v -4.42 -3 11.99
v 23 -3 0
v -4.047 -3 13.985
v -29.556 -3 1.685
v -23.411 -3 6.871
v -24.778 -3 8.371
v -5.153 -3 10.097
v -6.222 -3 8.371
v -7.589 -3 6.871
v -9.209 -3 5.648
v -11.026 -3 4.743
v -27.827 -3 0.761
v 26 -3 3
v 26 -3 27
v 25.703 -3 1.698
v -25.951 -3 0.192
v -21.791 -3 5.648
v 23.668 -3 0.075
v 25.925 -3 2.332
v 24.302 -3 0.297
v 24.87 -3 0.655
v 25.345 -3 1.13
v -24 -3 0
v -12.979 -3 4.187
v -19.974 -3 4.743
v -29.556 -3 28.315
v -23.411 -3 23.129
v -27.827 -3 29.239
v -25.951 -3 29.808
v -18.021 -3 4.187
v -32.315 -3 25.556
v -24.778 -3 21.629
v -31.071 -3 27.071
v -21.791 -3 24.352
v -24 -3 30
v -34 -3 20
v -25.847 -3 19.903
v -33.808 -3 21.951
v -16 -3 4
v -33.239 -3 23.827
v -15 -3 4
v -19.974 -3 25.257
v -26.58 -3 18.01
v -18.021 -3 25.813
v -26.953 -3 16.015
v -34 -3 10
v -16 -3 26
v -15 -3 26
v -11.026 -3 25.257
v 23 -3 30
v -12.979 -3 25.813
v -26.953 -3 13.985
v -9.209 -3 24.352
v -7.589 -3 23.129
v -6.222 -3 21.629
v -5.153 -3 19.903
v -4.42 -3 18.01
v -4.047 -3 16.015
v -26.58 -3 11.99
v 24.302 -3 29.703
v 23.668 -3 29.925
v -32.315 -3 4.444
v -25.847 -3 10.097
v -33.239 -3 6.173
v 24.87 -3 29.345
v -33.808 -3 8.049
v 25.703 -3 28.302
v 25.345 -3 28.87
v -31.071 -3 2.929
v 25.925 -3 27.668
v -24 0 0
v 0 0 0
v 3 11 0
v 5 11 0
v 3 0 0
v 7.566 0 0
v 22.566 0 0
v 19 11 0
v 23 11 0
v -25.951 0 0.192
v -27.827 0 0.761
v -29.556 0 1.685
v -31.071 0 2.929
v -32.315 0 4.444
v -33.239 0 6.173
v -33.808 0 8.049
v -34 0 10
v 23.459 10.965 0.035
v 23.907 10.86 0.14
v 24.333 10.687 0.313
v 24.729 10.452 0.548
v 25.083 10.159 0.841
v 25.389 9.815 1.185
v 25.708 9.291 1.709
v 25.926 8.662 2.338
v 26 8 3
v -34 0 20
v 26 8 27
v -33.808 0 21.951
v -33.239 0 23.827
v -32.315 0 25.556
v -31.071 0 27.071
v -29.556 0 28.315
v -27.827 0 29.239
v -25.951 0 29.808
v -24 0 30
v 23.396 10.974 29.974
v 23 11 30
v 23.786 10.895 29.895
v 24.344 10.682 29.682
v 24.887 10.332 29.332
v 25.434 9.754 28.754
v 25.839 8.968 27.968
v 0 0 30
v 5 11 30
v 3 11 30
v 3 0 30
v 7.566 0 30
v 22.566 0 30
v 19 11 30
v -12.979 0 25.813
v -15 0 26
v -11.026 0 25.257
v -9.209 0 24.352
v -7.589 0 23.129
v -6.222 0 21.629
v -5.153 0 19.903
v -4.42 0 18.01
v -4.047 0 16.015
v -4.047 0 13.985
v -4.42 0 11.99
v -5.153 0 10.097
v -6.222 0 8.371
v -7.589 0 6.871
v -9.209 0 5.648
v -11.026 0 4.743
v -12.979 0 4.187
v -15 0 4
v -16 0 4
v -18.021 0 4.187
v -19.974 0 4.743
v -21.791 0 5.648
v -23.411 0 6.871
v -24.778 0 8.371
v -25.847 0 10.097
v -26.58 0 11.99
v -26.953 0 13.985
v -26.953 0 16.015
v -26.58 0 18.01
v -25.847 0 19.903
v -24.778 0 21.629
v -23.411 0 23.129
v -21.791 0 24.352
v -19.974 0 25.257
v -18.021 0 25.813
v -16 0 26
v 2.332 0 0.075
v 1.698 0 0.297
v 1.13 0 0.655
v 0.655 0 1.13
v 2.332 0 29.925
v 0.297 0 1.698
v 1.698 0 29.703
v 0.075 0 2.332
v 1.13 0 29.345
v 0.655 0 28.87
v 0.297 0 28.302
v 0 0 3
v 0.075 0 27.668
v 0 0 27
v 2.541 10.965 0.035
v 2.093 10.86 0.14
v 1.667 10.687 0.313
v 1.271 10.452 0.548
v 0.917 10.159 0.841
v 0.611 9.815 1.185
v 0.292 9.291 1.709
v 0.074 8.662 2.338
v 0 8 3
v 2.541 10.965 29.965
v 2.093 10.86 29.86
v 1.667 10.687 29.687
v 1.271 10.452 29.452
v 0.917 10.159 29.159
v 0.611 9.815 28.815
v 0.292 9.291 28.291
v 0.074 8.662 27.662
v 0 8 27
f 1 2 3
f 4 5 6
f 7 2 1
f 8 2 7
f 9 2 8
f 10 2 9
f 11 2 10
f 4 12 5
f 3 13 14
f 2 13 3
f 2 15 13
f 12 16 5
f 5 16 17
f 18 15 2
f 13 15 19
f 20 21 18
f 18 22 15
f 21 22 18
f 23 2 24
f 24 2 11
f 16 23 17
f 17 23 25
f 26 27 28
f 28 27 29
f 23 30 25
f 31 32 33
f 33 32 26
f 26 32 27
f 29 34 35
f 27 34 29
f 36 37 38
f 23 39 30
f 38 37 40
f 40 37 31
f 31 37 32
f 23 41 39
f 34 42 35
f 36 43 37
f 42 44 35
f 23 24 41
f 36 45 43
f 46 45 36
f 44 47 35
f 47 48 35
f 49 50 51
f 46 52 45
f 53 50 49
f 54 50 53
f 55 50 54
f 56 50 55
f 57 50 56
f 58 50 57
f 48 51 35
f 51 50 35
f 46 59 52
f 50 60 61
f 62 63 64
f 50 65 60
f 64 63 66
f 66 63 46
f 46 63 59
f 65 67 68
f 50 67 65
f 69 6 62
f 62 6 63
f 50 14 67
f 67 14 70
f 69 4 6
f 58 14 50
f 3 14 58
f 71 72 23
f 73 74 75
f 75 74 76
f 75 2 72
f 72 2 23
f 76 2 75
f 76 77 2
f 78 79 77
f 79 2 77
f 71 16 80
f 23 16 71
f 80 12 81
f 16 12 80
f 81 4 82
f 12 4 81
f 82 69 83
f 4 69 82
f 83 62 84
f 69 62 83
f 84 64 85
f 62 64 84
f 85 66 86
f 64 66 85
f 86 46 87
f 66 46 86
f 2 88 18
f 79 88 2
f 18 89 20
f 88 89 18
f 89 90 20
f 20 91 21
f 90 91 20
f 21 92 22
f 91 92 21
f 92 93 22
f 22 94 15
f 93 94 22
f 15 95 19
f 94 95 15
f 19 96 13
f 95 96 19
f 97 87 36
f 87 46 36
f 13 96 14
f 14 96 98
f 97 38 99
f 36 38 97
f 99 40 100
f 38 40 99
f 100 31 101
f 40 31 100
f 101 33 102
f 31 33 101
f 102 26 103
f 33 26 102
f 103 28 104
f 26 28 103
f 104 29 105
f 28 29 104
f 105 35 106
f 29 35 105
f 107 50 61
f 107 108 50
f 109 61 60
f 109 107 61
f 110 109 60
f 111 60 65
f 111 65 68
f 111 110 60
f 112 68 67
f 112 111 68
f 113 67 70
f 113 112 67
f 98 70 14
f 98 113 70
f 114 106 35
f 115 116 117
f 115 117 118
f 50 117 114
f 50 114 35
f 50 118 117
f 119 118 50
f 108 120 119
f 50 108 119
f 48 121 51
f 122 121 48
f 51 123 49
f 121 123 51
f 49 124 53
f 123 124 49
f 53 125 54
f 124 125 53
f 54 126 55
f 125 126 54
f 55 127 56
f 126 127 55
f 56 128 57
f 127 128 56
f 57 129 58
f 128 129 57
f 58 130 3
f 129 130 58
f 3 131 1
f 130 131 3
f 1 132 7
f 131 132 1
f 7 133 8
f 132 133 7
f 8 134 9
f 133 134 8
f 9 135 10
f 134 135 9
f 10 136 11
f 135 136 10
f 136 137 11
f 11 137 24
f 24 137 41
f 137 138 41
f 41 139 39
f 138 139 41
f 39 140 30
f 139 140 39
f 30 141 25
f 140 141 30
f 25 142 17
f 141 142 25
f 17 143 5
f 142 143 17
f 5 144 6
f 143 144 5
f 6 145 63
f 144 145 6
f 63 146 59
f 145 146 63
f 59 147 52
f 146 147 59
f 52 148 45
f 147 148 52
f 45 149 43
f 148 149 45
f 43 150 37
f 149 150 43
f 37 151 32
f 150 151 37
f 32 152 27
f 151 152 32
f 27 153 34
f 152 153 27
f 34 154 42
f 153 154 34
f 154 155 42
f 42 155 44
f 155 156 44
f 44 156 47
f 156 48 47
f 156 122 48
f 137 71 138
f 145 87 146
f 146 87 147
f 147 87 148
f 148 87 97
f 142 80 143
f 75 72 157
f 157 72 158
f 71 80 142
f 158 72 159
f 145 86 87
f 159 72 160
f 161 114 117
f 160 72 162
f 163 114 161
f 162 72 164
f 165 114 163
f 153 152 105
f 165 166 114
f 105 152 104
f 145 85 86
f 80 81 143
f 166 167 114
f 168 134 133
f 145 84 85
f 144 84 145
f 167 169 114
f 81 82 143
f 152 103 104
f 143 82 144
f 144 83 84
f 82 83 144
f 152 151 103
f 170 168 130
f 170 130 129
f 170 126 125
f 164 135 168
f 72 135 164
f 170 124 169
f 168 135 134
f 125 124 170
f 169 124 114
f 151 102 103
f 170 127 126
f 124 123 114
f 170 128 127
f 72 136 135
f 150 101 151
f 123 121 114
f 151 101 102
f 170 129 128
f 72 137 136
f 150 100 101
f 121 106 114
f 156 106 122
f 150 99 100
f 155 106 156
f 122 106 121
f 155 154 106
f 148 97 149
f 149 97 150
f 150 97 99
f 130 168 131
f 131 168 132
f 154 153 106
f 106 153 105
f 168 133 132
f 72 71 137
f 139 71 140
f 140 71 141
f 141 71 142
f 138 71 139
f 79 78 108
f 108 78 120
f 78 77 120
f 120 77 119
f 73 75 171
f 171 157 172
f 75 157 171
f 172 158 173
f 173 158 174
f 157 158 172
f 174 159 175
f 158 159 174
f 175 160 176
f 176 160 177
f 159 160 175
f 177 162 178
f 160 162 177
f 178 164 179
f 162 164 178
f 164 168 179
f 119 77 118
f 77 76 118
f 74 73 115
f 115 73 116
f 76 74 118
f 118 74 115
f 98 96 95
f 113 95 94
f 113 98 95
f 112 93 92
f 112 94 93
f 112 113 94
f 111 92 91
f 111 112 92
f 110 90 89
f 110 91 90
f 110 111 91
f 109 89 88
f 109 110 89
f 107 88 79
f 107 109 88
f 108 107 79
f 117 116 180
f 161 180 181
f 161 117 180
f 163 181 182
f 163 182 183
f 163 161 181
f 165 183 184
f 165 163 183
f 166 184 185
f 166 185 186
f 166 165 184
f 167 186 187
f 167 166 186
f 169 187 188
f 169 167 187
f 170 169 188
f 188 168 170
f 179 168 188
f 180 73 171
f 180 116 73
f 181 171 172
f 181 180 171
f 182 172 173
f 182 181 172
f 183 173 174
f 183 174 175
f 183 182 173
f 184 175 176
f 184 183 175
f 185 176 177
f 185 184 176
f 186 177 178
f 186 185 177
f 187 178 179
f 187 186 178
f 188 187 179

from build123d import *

# Parameters (mm, degrees)
PAD_DEPTH    = 30
POCKET_DEPTH = 5
FILLET_R     = 3
FILLET001_R  = 10


with BuildPart() as part:
    # Sketch → Pad (new body)
    with BuildSketch(Plane.XY):
        Polygon((-34, -3), (26, -3), (26, 11), (19, 11), (22.565685, 0), (7.565685, 0), (5, 11), (0, 11), (0, 0), (-34, 0), align=None)
    extrude(amount=PAD_DEPTH)

    # Sketch001 → Pocket (cut)
    with BuildSketch(Plane(origin=(0, 0, 0), x_dir=(-1, 0, 0), z_dir=(0, 1, 0))):
        with BuildLine():
            ThreePointArc((15, 26), (4, 15), (15, 4))
            Line((15, 4), (16, 4))
            ThreePointArc((16, 4), (27, 15), (16, 26))
            Line((15, 26), (16, 26))
        make_face()
    extrude(amount=-POCKET_DEPTH, mode=Mode.SUBTRACT)

    # Fillet
    fillet_edges = [part.edges().sort_by_distance(p)[0] for p in [
        (0, 11, 15),
        (0, 5.5, 30),
        (0, 5.5, 0),
        (26, 4, 0),
        (26, 11, 15),
        (26, 4, 30),
    ]]
    fillet(fillet_edges, radius=FILLET_R)

    # Fillet001
    fillet001_edges = [part.edges().sort_by_distance(p)[0] for p in [
        (-34, -1.5, 0),
        (-34, -1.5, 30),
    ]]
    fillet(fillet001_edges, radius=FILLET001_R)


solid = part.part
